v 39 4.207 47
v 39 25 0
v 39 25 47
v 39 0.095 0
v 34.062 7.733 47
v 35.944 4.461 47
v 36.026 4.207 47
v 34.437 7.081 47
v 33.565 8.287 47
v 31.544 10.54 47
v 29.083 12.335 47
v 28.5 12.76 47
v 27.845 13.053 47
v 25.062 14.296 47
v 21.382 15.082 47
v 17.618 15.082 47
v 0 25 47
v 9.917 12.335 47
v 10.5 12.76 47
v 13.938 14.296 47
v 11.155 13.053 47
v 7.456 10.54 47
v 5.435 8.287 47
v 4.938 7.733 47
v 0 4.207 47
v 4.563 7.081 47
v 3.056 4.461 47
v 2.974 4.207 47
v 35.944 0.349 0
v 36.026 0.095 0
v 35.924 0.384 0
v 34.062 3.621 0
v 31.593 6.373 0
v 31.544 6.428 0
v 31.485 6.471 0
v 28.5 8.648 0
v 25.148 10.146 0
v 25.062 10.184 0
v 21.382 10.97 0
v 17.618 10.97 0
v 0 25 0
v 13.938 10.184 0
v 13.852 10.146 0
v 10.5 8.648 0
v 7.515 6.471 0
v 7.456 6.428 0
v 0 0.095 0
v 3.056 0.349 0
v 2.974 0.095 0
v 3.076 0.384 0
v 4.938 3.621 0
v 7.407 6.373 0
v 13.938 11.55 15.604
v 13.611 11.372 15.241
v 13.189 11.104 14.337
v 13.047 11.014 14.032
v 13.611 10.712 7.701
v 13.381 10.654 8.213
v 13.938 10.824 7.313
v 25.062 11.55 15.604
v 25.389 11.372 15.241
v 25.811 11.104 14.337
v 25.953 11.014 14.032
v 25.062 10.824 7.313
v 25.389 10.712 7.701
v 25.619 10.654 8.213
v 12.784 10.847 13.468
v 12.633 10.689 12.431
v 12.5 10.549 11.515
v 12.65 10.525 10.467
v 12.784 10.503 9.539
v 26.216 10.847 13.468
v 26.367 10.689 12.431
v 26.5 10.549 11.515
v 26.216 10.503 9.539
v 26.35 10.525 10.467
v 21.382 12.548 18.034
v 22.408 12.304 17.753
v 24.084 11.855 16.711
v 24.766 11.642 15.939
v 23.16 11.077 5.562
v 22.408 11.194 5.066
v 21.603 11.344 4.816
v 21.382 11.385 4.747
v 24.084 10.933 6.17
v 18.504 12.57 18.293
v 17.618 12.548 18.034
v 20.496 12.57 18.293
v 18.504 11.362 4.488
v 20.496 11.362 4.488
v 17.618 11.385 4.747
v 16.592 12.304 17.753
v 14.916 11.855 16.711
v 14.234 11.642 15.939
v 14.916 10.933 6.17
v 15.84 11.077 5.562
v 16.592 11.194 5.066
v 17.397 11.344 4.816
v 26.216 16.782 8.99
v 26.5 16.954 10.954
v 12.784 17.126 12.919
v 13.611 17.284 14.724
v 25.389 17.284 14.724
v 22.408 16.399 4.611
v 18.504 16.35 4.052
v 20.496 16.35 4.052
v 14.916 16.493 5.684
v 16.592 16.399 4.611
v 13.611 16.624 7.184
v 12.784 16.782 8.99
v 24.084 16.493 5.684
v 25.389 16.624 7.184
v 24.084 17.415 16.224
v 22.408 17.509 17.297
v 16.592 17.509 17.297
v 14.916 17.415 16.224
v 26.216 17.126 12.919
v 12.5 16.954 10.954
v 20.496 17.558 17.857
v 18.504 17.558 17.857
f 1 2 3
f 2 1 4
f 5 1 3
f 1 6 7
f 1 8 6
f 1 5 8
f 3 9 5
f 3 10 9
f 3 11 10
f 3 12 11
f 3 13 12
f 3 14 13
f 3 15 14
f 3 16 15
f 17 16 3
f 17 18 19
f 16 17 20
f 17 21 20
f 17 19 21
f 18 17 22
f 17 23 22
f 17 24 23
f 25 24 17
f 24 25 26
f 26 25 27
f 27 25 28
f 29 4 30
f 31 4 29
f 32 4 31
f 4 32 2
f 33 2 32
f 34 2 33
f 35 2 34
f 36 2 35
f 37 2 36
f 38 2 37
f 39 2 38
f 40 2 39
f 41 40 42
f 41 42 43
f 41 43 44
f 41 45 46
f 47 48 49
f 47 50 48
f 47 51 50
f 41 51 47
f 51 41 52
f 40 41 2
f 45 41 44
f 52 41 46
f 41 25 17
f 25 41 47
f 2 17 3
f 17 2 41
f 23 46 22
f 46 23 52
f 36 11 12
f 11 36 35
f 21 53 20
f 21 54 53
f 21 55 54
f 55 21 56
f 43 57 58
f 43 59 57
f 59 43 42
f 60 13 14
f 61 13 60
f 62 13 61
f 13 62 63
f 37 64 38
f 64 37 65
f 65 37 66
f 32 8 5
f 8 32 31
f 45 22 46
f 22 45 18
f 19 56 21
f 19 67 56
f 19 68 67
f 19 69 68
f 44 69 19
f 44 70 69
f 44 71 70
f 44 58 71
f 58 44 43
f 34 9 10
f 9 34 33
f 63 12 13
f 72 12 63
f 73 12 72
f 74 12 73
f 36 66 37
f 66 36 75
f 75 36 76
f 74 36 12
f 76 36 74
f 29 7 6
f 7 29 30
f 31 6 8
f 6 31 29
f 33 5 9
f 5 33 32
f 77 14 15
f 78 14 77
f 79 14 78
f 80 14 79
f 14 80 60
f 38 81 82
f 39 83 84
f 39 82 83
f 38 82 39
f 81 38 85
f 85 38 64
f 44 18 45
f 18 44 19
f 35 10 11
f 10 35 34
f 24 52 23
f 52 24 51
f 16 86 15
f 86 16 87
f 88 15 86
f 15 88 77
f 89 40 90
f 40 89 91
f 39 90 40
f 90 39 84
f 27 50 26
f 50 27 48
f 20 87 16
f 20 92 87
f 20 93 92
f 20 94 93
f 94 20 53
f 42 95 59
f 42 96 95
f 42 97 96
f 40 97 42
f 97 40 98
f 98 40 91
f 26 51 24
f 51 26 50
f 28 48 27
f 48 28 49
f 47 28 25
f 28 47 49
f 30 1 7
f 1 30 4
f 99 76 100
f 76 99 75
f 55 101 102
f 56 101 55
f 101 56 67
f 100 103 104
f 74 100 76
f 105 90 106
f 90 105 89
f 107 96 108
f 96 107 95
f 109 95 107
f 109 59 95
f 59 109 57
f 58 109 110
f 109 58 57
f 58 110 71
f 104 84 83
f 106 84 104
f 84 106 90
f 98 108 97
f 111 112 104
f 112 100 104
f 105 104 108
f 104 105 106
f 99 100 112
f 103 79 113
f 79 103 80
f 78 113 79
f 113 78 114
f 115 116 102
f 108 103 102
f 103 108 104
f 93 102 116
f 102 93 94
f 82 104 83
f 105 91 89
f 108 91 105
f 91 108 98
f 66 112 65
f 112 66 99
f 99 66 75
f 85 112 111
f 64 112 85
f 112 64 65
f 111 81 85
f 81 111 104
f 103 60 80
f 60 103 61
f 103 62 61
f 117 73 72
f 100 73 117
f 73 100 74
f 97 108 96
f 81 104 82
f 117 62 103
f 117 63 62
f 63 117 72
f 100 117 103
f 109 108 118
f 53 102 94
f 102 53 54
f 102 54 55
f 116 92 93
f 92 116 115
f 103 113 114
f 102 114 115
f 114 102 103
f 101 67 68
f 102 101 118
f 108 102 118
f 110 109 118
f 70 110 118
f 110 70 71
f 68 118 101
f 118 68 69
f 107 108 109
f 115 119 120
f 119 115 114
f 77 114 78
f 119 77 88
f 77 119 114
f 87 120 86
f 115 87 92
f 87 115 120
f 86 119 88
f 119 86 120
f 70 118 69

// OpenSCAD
difference() {
 cube( [39, 25, 47]);
 translate( [39/2, -7, 0]) 
   rotate([-5,0,0]) {
     cylinder(h=60, r=18 );
   }
 translate( [0, -25, 0]) 
   rotate([-5,0,0]) {
     cube( [39, 25, 60]);
   }   
 translate( [39/2, 5, 12]) 
   rotate([-95,0,0]) {
     cylinder(h=12, r=7 );
  }   
}
